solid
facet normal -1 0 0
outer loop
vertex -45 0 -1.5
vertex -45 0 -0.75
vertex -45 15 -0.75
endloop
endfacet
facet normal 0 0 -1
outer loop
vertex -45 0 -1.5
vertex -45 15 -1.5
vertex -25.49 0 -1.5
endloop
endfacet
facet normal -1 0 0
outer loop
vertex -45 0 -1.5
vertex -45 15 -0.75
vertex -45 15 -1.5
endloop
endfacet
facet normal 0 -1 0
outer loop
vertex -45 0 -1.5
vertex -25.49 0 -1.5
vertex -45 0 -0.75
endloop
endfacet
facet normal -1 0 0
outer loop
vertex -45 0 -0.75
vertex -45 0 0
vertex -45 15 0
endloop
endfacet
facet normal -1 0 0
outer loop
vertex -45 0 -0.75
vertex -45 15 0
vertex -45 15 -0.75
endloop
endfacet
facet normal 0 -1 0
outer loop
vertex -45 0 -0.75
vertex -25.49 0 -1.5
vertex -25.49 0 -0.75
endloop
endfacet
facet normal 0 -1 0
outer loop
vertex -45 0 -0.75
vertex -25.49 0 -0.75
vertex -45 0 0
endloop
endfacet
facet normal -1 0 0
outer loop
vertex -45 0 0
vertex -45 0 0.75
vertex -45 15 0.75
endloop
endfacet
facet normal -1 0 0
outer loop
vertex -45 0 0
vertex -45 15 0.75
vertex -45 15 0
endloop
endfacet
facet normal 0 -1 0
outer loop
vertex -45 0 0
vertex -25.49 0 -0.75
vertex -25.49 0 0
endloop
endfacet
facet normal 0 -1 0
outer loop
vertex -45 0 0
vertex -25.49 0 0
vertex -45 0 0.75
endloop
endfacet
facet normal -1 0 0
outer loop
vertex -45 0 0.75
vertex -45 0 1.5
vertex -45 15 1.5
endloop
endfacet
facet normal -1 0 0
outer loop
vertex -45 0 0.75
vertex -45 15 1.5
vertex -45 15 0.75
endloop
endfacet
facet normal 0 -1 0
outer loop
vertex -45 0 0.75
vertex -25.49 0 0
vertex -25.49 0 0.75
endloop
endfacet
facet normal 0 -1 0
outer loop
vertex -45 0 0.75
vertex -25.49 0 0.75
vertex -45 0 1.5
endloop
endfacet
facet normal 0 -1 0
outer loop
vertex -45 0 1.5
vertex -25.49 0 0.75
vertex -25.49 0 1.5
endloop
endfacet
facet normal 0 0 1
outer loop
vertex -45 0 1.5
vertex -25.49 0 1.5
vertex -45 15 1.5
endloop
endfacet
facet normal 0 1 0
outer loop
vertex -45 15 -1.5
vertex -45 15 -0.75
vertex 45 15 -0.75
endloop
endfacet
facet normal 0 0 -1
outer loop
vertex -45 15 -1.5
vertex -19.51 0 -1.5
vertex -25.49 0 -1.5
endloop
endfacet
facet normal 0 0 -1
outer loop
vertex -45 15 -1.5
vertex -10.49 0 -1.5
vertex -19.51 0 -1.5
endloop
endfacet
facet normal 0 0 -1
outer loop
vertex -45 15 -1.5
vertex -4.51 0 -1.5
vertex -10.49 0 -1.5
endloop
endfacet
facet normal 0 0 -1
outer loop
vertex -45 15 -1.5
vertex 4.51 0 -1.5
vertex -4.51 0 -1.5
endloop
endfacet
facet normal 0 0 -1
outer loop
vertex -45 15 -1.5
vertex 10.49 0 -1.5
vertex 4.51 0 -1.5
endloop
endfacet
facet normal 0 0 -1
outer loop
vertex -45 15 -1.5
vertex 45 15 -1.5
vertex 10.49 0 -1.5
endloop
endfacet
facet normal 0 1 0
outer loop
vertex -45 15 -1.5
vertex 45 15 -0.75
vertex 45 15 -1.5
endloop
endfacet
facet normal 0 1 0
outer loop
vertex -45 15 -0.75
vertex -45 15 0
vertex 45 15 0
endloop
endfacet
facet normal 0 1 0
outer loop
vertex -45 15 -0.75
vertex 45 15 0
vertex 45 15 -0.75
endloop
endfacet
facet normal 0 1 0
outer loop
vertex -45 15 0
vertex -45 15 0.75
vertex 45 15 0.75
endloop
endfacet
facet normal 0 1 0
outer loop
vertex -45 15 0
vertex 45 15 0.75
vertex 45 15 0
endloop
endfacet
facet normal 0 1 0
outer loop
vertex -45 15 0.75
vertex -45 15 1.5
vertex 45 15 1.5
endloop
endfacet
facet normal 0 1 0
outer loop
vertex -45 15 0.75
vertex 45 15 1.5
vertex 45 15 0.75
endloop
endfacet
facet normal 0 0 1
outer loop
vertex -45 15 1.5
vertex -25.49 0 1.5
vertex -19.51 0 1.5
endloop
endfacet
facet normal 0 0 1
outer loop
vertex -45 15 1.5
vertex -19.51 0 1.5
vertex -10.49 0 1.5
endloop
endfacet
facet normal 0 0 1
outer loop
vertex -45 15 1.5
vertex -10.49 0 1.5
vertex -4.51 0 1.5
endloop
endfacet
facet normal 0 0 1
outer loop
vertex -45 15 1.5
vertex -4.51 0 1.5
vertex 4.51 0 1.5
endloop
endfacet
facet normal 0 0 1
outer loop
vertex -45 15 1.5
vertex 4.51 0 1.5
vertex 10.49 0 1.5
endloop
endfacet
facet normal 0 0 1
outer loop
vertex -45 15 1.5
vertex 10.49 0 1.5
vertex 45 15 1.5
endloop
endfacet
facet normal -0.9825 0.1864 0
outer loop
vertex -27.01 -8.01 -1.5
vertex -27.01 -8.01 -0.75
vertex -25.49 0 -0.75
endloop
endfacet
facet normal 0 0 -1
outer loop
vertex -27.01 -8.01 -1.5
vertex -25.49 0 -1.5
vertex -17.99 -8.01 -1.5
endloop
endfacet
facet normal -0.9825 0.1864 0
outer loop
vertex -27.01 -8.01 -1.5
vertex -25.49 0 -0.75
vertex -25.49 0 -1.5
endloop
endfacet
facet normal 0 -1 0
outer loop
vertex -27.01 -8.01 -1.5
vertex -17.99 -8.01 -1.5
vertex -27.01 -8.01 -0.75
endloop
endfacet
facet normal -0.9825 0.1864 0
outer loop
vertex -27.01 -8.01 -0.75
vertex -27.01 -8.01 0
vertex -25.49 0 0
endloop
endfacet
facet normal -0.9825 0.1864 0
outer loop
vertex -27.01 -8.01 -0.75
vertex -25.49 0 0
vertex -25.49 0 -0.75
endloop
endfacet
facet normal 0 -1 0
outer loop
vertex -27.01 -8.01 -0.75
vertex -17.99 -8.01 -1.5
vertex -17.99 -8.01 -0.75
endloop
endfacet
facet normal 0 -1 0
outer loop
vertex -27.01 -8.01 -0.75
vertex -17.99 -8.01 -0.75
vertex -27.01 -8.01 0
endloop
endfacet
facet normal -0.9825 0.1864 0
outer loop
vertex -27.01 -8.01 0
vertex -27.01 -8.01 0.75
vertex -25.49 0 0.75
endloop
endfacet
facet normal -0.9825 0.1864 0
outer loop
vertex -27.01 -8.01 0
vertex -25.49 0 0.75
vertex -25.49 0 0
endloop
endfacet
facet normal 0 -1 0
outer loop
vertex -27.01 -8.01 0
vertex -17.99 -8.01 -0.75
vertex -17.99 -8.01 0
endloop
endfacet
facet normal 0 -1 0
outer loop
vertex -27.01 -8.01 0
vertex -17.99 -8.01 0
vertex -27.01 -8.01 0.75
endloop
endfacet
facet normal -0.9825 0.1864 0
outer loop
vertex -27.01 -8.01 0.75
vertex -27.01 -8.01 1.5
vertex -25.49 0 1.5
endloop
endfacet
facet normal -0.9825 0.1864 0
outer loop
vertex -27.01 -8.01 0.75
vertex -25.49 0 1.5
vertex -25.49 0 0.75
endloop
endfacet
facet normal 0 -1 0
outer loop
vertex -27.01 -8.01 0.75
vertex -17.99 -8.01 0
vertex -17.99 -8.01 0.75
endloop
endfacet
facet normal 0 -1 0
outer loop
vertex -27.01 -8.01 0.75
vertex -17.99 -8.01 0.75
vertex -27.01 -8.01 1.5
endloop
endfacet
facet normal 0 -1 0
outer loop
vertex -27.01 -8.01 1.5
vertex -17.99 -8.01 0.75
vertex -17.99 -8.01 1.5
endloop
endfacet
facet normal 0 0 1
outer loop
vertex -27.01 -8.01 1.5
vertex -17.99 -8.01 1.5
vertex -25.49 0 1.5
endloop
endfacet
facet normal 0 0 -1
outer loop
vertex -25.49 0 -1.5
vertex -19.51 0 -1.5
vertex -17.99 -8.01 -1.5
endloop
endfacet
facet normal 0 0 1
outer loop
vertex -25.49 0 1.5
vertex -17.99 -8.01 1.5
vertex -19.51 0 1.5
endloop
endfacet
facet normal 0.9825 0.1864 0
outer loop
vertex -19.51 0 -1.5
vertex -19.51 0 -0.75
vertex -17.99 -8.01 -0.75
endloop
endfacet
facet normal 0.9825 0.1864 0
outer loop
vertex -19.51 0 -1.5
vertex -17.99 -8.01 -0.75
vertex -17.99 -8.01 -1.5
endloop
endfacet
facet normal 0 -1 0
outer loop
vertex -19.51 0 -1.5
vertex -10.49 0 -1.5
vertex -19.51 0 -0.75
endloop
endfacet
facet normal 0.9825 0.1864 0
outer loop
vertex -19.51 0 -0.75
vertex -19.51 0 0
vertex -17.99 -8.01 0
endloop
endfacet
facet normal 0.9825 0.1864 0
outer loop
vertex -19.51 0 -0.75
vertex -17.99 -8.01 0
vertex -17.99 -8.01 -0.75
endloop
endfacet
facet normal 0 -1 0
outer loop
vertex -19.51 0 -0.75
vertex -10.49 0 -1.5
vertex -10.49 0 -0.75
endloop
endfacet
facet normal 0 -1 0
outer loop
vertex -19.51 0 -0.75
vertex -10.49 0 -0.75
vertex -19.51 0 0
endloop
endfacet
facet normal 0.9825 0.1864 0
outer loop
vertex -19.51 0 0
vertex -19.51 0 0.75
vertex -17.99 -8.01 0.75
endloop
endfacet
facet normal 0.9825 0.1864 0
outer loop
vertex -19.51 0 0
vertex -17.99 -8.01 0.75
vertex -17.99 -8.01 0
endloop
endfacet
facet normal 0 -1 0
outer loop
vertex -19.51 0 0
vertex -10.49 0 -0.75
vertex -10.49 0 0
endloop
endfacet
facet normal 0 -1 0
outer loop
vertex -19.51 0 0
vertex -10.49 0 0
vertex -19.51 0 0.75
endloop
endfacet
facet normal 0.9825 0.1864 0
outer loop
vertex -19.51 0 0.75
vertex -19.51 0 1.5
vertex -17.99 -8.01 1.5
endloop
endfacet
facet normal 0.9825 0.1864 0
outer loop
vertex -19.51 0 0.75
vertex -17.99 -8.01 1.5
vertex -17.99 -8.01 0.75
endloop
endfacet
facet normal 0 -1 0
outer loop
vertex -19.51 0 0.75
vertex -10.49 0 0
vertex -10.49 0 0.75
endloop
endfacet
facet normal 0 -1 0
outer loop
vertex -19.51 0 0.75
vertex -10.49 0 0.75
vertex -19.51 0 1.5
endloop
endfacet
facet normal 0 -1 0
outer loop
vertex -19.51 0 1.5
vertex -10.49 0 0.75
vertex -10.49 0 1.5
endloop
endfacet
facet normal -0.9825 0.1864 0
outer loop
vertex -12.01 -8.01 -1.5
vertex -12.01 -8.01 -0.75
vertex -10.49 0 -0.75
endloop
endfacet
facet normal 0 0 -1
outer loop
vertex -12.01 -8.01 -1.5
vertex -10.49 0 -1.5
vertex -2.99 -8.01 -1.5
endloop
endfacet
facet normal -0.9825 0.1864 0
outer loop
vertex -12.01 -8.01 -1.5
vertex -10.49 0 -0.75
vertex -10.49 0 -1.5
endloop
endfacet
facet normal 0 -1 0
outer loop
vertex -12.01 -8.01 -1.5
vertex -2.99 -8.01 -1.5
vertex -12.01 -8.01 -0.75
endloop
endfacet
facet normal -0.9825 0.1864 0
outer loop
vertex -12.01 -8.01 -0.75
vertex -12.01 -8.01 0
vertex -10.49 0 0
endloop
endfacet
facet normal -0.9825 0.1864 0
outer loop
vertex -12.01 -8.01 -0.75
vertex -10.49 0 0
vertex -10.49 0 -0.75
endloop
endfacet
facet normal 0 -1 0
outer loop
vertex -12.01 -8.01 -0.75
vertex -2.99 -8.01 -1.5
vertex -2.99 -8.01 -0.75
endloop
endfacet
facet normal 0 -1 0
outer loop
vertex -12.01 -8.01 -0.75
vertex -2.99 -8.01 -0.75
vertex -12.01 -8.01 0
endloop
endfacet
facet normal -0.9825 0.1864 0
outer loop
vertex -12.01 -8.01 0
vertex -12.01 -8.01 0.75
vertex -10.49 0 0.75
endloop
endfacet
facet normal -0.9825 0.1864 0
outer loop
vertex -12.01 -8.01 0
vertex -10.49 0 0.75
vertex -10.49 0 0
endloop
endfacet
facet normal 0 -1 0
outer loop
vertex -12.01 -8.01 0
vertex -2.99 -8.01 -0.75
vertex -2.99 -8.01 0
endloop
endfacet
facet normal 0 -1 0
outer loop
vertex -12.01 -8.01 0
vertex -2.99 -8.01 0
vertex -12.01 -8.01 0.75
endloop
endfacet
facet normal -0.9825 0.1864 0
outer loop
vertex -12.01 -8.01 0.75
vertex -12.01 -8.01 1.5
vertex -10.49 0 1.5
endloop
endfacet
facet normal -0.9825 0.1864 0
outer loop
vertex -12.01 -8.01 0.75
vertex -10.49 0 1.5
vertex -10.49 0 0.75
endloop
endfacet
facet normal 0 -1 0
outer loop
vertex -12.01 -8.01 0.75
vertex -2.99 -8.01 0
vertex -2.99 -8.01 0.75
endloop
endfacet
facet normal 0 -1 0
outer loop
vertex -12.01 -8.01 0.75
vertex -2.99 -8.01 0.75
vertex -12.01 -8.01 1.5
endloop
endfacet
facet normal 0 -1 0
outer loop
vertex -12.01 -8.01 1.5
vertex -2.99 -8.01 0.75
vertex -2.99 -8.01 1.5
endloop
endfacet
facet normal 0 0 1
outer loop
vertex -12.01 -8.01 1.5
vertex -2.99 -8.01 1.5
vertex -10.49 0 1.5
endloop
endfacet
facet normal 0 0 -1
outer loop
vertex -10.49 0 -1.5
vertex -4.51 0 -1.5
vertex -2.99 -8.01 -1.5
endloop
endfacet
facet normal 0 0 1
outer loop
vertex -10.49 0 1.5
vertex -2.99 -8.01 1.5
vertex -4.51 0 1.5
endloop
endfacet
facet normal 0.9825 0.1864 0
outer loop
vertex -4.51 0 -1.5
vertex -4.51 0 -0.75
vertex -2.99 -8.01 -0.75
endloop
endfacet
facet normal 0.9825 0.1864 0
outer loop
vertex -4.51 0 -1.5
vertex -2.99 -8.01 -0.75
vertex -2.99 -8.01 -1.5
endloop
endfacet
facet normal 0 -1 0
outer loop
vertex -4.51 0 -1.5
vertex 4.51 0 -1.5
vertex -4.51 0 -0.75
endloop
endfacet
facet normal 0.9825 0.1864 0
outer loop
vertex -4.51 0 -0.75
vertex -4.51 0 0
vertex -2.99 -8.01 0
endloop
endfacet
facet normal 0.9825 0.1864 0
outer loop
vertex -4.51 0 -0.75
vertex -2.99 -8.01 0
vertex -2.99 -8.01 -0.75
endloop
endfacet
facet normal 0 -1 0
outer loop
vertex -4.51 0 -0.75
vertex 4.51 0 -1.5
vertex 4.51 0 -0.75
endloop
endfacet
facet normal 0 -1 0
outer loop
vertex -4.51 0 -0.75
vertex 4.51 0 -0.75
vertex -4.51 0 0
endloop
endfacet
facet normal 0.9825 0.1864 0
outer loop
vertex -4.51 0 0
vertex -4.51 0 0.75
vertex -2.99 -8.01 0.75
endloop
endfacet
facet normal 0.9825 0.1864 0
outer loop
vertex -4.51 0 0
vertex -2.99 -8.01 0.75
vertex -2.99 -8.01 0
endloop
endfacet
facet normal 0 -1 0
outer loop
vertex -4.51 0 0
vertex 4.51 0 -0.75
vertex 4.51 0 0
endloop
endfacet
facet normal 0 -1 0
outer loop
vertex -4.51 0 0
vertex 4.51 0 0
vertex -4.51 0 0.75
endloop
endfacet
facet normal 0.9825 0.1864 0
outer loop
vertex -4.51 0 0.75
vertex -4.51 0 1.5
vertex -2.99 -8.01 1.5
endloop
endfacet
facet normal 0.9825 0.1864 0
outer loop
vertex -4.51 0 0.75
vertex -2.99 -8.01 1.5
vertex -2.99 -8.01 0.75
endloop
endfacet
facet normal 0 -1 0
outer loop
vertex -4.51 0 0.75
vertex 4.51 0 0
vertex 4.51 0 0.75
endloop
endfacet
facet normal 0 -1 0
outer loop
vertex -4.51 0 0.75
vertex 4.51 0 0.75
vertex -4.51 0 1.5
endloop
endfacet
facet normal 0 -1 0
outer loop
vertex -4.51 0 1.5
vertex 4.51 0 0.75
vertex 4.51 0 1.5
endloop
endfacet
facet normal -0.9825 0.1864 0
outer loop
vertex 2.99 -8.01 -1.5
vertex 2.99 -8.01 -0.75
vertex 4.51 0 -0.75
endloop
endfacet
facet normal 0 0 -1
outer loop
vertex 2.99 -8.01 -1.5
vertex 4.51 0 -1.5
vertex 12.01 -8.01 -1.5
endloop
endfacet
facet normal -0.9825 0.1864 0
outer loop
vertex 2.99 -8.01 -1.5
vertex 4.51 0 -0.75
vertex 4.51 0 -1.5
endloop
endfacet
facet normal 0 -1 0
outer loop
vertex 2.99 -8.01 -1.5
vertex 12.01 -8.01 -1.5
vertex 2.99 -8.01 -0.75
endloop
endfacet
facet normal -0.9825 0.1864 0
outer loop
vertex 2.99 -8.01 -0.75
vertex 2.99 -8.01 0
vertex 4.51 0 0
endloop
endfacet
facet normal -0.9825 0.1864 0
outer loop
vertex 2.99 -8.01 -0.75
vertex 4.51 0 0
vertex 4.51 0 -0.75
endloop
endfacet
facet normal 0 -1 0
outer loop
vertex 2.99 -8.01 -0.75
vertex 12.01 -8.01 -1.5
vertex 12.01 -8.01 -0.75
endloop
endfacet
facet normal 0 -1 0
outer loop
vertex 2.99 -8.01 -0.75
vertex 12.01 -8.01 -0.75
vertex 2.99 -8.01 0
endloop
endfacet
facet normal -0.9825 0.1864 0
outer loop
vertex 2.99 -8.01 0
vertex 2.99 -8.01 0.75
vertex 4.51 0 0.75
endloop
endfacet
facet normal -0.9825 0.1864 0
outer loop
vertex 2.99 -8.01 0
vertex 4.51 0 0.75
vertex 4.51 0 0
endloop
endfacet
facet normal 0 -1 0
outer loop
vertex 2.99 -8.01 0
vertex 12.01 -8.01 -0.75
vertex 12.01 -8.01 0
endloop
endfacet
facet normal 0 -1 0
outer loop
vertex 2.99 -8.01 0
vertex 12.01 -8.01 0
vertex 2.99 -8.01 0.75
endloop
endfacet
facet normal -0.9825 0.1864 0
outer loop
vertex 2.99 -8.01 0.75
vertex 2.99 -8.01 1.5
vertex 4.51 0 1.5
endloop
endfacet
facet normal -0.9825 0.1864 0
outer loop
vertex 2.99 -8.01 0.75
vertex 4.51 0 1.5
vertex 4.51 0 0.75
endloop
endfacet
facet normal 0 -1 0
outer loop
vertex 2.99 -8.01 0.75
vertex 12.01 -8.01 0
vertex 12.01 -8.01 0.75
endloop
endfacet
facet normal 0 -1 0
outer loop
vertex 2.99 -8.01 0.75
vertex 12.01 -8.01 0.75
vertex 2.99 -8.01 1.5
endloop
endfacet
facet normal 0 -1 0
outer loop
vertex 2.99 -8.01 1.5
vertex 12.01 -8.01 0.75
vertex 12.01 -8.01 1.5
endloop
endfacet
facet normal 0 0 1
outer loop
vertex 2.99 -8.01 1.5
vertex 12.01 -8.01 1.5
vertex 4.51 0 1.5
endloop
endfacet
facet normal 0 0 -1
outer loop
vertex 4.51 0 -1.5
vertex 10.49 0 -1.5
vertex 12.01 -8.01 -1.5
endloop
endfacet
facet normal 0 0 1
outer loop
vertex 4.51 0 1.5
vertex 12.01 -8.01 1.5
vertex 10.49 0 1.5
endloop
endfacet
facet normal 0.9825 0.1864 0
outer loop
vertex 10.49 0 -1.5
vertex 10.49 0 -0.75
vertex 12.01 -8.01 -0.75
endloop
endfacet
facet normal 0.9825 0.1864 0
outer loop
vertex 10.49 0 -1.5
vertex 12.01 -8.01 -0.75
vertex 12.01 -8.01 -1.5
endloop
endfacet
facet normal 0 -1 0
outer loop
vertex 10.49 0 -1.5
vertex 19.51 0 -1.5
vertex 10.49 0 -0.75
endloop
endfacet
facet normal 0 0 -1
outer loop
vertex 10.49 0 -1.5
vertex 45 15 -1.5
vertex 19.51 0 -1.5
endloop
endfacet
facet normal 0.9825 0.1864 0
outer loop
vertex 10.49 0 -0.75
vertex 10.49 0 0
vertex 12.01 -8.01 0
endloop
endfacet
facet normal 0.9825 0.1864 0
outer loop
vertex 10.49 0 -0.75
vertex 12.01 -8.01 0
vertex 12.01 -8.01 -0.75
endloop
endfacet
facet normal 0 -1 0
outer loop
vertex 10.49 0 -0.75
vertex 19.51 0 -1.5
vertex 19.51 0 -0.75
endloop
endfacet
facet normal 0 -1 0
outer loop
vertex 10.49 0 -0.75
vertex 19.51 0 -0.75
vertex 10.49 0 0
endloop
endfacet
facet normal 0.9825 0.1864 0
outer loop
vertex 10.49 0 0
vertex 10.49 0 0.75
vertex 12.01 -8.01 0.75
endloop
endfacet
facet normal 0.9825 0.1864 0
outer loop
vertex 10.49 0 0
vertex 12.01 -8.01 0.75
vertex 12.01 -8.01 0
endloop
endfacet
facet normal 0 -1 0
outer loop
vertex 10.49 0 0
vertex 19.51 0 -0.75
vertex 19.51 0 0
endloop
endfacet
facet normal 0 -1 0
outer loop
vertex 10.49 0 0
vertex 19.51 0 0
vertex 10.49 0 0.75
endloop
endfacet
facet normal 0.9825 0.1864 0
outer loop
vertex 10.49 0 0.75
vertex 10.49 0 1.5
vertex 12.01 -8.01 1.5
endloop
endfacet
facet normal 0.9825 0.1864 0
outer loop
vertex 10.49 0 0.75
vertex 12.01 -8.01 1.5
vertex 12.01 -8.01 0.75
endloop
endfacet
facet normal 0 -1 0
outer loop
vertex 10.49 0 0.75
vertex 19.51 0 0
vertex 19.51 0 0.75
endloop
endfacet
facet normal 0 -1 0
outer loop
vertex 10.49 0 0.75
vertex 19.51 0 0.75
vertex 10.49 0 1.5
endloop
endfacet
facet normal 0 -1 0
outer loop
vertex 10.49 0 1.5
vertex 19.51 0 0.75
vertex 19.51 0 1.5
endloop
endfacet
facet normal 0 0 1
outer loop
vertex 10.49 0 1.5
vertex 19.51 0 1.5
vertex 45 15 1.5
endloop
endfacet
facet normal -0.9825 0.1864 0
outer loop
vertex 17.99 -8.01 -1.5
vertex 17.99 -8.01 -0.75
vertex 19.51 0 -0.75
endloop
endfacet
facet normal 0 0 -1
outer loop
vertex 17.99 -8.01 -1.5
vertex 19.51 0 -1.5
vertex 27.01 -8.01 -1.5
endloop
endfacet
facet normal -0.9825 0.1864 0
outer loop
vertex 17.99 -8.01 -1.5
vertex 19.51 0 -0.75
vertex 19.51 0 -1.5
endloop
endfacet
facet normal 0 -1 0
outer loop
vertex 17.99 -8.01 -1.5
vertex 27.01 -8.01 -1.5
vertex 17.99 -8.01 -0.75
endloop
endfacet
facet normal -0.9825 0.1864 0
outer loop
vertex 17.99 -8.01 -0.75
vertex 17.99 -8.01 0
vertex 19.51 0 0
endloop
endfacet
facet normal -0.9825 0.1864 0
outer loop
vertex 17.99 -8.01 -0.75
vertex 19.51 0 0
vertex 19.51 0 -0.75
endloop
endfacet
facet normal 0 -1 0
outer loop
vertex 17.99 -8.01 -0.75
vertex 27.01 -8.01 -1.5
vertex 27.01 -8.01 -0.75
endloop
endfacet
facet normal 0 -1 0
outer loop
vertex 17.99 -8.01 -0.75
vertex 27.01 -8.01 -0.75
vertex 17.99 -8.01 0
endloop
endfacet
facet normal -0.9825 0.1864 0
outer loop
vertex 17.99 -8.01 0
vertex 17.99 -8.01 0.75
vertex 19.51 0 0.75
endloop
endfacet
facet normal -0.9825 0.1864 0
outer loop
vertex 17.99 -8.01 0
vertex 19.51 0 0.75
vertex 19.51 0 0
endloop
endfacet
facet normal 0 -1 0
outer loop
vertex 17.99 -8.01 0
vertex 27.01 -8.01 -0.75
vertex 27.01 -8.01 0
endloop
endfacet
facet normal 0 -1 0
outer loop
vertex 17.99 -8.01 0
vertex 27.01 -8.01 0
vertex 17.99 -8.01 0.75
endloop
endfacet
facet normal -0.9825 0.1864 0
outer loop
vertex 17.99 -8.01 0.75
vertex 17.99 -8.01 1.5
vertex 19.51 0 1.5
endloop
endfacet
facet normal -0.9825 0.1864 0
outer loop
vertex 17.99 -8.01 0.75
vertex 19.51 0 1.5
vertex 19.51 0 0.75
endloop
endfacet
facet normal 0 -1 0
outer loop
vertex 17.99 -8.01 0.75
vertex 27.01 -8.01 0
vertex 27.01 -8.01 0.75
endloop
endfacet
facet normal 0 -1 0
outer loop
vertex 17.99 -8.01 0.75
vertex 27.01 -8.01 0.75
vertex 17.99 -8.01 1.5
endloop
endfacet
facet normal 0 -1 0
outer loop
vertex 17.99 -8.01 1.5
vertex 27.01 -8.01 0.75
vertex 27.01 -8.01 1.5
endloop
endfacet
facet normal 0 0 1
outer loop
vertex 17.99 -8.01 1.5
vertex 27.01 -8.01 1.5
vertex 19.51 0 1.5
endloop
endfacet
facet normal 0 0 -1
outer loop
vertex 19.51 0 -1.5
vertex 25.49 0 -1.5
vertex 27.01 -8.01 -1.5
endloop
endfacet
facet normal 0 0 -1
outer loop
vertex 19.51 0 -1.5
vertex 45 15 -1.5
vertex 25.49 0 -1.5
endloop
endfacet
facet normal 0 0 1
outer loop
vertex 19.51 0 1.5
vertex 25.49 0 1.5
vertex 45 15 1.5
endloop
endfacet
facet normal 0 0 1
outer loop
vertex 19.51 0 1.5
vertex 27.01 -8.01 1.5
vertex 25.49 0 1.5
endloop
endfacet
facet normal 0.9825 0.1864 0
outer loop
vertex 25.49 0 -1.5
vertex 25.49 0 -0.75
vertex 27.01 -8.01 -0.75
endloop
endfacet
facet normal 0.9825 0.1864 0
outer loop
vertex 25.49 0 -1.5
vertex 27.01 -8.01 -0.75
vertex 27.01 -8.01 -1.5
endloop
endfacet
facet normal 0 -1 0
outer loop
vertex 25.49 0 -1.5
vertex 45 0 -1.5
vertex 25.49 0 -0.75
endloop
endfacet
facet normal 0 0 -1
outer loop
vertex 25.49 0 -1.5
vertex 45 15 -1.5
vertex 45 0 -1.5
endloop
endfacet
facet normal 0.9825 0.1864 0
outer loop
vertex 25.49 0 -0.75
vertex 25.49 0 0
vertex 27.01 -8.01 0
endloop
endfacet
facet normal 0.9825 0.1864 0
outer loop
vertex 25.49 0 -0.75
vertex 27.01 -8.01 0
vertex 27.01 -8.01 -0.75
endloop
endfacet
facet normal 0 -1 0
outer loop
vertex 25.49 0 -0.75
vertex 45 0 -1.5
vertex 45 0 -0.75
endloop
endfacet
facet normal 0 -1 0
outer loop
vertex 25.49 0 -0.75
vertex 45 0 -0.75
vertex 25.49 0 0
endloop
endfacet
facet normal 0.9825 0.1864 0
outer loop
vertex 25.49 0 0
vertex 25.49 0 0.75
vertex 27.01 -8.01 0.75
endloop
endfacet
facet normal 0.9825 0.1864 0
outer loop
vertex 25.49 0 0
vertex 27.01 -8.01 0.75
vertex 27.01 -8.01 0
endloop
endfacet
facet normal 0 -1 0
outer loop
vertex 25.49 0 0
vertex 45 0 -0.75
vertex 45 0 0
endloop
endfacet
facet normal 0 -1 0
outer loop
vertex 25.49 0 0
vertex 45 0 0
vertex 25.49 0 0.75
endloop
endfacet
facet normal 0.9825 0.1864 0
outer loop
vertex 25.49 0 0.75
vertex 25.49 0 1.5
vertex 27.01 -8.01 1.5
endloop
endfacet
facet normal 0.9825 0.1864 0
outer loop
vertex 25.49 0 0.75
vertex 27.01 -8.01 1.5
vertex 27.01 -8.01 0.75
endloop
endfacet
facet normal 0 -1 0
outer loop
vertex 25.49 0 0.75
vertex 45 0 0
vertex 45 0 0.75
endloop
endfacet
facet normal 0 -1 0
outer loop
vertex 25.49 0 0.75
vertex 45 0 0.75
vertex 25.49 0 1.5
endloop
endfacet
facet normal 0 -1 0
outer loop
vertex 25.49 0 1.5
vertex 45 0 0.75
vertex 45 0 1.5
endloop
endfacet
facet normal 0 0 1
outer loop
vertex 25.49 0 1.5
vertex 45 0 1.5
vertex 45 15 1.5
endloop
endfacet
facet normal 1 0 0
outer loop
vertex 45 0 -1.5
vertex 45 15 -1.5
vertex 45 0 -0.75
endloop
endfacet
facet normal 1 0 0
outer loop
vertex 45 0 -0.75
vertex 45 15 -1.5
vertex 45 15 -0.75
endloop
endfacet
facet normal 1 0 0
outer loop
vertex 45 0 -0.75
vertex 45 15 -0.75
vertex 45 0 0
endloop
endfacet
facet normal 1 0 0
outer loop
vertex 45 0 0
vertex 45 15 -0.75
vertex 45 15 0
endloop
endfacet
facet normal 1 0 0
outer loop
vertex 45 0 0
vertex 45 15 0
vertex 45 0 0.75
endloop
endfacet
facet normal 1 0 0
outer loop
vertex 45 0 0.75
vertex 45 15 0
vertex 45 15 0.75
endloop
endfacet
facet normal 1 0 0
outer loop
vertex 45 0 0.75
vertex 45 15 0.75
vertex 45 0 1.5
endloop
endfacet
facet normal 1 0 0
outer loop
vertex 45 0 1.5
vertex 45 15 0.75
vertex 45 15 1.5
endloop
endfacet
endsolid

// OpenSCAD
// Start: lazy_union
default_5_default_5();
// End: lazy_union

// Modules.

// 'PartMaterial undef-default - default 5.0'
module default_5_default_5() {
  // 'None : _combine_solids_and_holes'
  union() {
    // 'lower : _combine_solids_and_holes'
    union() {
      // 'front'
      multmatrix(m=[[-1.0, 0.0, 0.0, 0.0], [0.0, -1.0, 0.0, 0.0], [0.0, 0.0, 1.0, -1.5], [0.0, 0.0, 0.0, 1.0]]) {
        // 'front : _combine_solids_and_holes'
        union() {
          // 'front'
          linear_extrude(height=3.0, twist=0.0, slices=4, scale=[1.0, 1.0]) {
            polygon(points=[[0.0, 0.0], [0.0, 0.0], [-4.51, 0.0], [-2.99, 8.01], [-7.5, 8.01], [-12.01, 8.01], [-10.49, 0.0], [-15.0, 0.0], [-15.0, 0.0], [-19.509999999999998, 0.0], [-17.990000000000002, 8.01], [-22.5, 8.01], [-27.009999999999998, 8.01], [-25.490000000000002, 0.0], [-30.0, 0.0], [-45.0, 0.0], [-45.0, -15.0], [0.0, -15.0], [45.0, -15.0], [45.0, 0.0], [30.0, 0.0], [30.0, 0.0], [25.490000000000002, 0.0], [27.009999999999998, 8.01], [22.5, 8.01], [17.990000000000002, 8.01], [19.509999999999998, 0.0], [15.0, 0.0], [15.0, 0.0], [10.49, 0.0], [12.01, 8.01], [7.5, 8.01], [2.99, 8.01], [4.51, 0.0], [0.0, 0.0]], paths=[[-1], [0, 1, 2, 3, 4, 5, 6, 0], [7, 8, 9, 10, 11, 12, 13, 14, 15, 16, 17, 18, 19, 7], [20, 21, 22, 23, 24, 25, 26, 20], [27, 28, 29, 30, 31, 32, 33, 34, 27]]);
          }
        }
      }
    }
  }
} // end module default_5_default_5
